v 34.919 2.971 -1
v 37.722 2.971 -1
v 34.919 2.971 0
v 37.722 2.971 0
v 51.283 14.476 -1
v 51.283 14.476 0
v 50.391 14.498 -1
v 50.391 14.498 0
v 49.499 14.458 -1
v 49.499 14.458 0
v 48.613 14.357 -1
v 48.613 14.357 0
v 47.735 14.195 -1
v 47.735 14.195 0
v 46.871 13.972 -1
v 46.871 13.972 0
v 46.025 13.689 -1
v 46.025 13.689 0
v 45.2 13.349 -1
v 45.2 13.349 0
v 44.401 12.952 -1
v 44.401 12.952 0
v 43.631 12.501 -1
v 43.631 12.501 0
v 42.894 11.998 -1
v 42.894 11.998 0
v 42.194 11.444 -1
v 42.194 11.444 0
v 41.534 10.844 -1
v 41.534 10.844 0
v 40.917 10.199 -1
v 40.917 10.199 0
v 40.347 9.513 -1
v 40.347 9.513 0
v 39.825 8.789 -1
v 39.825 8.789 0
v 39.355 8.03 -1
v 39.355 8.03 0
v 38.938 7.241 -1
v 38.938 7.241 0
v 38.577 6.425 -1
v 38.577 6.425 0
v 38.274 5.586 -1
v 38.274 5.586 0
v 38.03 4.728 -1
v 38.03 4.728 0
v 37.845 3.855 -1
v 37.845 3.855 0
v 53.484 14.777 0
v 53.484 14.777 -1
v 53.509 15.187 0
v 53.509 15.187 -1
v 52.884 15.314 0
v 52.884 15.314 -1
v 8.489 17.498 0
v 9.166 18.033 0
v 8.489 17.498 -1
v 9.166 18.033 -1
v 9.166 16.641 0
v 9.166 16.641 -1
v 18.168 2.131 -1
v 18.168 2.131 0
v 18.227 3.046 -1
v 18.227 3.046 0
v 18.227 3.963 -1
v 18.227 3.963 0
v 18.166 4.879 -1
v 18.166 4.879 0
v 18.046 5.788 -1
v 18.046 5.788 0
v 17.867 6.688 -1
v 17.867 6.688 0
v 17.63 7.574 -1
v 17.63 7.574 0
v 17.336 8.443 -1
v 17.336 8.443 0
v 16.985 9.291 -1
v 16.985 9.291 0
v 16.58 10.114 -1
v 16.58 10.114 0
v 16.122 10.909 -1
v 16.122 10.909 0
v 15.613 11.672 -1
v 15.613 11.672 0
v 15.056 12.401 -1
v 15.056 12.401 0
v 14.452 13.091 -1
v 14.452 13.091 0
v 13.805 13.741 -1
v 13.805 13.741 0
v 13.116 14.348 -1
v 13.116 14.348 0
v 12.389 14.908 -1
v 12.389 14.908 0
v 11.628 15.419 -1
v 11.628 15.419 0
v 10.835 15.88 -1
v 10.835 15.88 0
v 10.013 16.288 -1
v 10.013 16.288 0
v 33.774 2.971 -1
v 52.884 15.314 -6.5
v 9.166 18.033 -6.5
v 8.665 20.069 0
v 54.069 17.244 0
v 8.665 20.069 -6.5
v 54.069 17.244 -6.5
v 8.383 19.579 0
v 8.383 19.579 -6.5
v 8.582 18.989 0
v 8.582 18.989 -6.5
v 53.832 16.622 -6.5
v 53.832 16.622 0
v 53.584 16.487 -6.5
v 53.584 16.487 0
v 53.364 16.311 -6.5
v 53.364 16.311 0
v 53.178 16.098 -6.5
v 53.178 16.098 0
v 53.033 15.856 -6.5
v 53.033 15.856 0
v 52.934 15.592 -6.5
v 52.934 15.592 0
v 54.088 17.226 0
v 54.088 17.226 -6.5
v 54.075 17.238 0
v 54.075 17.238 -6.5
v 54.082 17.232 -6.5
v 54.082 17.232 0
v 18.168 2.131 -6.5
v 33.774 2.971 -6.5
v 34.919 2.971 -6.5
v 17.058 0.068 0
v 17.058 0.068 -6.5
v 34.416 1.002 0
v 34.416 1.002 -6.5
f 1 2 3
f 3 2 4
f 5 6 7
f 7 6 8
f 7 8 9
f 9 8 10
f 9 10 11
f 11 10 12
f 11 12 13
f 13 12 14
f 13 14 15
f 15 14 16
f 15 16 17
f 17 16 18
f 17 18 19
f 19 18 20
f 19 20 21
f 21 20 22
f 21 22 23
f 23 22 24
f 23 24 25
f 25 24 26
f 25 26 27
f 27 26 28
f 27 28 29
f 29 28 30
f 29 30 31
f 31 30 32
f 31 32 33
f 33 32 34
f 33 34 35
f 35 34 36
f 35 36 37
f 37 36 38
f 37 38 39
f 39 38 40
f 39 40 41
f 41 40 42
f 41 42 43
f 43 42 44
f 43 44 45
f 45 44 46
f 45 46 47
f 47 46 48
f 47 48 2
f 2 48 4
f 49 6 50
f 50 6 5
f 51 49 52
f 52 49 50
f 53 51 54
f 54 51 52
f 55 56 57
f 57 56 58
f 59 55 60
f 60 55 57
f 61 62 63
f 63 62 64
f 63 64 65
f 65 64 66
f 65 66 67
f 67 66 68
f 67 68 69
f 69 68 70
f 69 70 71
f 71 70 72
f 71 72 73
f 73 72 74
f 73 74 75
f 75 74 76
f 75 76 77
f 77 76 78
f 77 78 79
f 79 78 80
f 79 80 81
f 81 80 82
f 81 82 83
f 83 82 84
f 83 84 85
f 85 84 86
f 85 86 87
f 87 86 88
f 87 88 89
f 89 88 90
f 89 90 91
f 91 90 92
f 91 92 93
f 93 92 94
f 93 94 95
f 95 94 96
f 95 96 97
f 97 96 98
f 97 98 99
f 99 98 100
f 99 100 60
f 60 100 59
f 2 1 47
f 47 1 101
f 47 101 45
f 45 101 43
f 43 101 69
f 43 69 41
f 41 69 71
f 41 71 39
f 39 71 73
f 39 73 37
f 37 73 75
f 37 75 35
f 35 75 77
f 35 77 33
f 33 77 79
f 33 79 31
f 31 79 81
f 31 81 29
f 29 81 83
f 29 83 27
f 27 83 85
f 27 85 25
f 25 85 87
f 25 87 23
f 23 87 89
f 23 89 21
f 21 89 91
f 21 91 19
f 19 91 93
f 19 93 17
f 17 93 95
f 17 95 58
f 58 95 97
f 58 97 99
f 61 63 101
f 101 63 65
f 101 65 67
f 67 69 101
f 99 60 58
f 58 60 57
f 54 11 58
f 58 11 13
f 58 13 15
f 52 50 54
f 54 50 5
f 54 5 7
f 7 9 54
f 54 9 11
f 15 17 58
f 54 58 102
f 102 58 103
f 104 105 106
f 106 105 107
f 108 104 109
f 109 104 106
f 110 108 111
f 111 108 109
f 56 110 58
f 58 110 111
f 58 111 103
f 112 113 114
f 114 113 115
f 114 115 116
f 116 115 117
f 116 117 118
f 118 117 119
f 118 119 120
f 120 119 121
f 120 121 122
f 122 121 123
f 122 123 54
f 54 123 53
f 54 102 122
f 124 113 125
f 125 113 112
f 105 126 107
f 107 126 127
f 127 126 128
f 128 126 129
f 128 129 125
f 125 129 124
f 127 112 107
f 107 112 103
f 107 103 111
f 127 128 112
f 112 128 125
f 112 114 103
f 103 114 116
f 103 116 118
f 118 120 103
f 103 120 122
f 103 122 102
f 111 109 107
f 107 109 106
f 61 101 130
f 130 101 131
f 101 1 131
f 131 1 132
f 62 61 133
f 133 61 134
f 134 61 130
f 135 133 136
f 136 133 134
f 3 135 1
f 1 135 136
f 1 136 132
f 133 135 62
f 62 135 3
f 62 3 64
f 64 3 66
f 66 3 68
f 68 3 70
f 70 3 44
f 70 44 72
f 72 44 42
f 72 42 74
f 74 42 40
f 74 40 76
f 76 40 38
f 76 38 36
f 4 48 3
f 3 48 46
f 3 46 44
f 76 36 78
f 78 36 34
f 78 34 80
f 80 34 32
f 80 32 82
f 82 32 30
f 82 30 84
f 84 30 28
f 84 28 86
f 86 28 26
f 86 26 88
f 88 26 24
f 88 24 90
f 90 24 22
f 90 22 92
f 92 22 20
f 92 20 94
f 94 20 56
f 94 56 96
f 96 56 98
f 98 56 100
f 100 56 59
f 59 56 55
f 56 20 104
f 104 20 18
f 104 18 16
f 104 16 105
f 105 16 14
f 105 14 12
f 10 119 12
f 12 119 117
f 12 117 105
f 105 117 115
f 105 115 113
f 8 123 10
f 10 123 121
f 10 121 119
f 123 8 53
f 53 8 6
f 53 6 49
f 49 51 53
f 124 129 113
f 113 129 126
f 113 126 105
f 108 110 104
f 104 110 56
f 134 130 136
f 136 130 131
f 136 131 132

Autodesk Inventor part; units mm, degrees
ref_plane "YZ Plane" through (0, 0, 0) normal (1, 0, 0) x (0, 1, 0)
ref_plane "XZ Plane" through (0, 0, 0) normal (0, 1, 0) x (-1, 0, 0)
ref_plane "XY Plane" through (0, 0, 0) normal (0, 0, 1) x (1, 0, 0)
sketch "Boceto1" plane through (0, 0, 0) normal (0, 0, 1) x (1, 0, 0)
  line L0 (42.8032, 3.438) -> (42.2388, 3.4264) construction
  line L1 (32.2478, 2.8886) -> (18.1678, 2.1307)
  line L2 (8.5818, 18.9887) -> (9.1664, 18.0334)
  line L3 (9.1664, 18.0334) -> (52.8836, 15.3138)
  arc A0 (54.0881, 17.2258) -> (54.0687, 17.2439) centre (52.0315, 15.0417) ccw
  line L4 (54.0687, 17.2439) -> (8.6649, 20.0685)
  line L5 (8.6649, 20.0685) -> (8.3833, 19.5786)
  line L6 (8.3833, 19.5786) -> (8.5818, 18.9887)
  line L7 (17.0583, 0.068) -> (31.7076, 0.8566)
  line L8 (17.0583, 0.068) -> (18.1678, 2.1307)
  arc A1 (53.8325, 16.6216) -> (52.8836, 15.3138) centre (54.4554, 15.1715) ccw
  line L9 (53.8325, 16.6216) -> (54.0881, 17.2258)
  line L10 (32.2478, 2.8886) -> (18.1678, 2.1307)
  line L11 (18.1678, 2.1307) -> (33.7743, 2.9708)
  line L12 (33.7743, 2.9708) -> (34.9191, 2.9708)
  line L13 (34.9191, 2.9708) -> (34.4156, 1.0024)
  line L14 (34.4156, 1.0024) -> (31.7076, 0.8566)
  point P0 (0, 0)
  point P1 (23.6867, 2.4277)
  point P2 (23.6867, 2.4277)
  point P3 (34.3467, 2.9708)
  dimension "d40" = 2
  dimension "d41" = 2
extrude "Extrusión1" add sketch "Boceto1" against normal blind 6.5
sketch "Boceto2" plane through (0, 0, 0) normal (0, 0, 1) x (1, 0, 0)
  line L0 (8.9388, 9.1447) -> (47.9388, 9.1447) construction
  line L1 (51.4388, 12.1447) -> (51.4388, 15.3947) construction
  line L2 (9.1664, 16.6413) -> (8.4891, 17.498)
  line L3 (8.4891, 17.498) -> (9.1664, 18.0334)
  line L4 (9.1664, 18.0334) -> (52.8836, 15.3138)
  line L5 (33.7743, 2.9708) -> (18.1678, 2.1307) projected
  arc A0 (18.1678, 2.1307) -> (9.1664, 16.6413) centre (4.1736, 3.4968) ccw
  line L6 (18.1678, 2.1307) -> (33.7743, 2.9708)
  line L7 (33.7743, 2.9708) -> (37.722, 2.9708)
  arc A1 (51.2828, 14.4758) -> (37.722, 2.9708) centre (50.5158, 1.6354) ccw
  line L8 (52.8836, 15.3138) -> (53.5092, 15.187)
  line L9 (53.5092, 15.187) -> (53.4837, 14.7773)
  line L10 (53.4837, 14.7773) -> (51.2828, 14.4758)
  point P0 (0, 0)
  point P1 (1.4388, 9.1447)
  point P2 (23.6867, 2.4277)
  point P3 (51.9388, 13.5511)
  point P4 (32.2478, 2.8886)
  point P5 (40.9403, 9.1447)
  point P6 (32.2478, 2.8886)
  dimension "d27" = 3.5
  dimension "d31" = 3.25
extrude "Extrusión2" add sketch "Boceto2" against normal blind 1
properties part number "Pieza1_Carcasa_3DPrint"
